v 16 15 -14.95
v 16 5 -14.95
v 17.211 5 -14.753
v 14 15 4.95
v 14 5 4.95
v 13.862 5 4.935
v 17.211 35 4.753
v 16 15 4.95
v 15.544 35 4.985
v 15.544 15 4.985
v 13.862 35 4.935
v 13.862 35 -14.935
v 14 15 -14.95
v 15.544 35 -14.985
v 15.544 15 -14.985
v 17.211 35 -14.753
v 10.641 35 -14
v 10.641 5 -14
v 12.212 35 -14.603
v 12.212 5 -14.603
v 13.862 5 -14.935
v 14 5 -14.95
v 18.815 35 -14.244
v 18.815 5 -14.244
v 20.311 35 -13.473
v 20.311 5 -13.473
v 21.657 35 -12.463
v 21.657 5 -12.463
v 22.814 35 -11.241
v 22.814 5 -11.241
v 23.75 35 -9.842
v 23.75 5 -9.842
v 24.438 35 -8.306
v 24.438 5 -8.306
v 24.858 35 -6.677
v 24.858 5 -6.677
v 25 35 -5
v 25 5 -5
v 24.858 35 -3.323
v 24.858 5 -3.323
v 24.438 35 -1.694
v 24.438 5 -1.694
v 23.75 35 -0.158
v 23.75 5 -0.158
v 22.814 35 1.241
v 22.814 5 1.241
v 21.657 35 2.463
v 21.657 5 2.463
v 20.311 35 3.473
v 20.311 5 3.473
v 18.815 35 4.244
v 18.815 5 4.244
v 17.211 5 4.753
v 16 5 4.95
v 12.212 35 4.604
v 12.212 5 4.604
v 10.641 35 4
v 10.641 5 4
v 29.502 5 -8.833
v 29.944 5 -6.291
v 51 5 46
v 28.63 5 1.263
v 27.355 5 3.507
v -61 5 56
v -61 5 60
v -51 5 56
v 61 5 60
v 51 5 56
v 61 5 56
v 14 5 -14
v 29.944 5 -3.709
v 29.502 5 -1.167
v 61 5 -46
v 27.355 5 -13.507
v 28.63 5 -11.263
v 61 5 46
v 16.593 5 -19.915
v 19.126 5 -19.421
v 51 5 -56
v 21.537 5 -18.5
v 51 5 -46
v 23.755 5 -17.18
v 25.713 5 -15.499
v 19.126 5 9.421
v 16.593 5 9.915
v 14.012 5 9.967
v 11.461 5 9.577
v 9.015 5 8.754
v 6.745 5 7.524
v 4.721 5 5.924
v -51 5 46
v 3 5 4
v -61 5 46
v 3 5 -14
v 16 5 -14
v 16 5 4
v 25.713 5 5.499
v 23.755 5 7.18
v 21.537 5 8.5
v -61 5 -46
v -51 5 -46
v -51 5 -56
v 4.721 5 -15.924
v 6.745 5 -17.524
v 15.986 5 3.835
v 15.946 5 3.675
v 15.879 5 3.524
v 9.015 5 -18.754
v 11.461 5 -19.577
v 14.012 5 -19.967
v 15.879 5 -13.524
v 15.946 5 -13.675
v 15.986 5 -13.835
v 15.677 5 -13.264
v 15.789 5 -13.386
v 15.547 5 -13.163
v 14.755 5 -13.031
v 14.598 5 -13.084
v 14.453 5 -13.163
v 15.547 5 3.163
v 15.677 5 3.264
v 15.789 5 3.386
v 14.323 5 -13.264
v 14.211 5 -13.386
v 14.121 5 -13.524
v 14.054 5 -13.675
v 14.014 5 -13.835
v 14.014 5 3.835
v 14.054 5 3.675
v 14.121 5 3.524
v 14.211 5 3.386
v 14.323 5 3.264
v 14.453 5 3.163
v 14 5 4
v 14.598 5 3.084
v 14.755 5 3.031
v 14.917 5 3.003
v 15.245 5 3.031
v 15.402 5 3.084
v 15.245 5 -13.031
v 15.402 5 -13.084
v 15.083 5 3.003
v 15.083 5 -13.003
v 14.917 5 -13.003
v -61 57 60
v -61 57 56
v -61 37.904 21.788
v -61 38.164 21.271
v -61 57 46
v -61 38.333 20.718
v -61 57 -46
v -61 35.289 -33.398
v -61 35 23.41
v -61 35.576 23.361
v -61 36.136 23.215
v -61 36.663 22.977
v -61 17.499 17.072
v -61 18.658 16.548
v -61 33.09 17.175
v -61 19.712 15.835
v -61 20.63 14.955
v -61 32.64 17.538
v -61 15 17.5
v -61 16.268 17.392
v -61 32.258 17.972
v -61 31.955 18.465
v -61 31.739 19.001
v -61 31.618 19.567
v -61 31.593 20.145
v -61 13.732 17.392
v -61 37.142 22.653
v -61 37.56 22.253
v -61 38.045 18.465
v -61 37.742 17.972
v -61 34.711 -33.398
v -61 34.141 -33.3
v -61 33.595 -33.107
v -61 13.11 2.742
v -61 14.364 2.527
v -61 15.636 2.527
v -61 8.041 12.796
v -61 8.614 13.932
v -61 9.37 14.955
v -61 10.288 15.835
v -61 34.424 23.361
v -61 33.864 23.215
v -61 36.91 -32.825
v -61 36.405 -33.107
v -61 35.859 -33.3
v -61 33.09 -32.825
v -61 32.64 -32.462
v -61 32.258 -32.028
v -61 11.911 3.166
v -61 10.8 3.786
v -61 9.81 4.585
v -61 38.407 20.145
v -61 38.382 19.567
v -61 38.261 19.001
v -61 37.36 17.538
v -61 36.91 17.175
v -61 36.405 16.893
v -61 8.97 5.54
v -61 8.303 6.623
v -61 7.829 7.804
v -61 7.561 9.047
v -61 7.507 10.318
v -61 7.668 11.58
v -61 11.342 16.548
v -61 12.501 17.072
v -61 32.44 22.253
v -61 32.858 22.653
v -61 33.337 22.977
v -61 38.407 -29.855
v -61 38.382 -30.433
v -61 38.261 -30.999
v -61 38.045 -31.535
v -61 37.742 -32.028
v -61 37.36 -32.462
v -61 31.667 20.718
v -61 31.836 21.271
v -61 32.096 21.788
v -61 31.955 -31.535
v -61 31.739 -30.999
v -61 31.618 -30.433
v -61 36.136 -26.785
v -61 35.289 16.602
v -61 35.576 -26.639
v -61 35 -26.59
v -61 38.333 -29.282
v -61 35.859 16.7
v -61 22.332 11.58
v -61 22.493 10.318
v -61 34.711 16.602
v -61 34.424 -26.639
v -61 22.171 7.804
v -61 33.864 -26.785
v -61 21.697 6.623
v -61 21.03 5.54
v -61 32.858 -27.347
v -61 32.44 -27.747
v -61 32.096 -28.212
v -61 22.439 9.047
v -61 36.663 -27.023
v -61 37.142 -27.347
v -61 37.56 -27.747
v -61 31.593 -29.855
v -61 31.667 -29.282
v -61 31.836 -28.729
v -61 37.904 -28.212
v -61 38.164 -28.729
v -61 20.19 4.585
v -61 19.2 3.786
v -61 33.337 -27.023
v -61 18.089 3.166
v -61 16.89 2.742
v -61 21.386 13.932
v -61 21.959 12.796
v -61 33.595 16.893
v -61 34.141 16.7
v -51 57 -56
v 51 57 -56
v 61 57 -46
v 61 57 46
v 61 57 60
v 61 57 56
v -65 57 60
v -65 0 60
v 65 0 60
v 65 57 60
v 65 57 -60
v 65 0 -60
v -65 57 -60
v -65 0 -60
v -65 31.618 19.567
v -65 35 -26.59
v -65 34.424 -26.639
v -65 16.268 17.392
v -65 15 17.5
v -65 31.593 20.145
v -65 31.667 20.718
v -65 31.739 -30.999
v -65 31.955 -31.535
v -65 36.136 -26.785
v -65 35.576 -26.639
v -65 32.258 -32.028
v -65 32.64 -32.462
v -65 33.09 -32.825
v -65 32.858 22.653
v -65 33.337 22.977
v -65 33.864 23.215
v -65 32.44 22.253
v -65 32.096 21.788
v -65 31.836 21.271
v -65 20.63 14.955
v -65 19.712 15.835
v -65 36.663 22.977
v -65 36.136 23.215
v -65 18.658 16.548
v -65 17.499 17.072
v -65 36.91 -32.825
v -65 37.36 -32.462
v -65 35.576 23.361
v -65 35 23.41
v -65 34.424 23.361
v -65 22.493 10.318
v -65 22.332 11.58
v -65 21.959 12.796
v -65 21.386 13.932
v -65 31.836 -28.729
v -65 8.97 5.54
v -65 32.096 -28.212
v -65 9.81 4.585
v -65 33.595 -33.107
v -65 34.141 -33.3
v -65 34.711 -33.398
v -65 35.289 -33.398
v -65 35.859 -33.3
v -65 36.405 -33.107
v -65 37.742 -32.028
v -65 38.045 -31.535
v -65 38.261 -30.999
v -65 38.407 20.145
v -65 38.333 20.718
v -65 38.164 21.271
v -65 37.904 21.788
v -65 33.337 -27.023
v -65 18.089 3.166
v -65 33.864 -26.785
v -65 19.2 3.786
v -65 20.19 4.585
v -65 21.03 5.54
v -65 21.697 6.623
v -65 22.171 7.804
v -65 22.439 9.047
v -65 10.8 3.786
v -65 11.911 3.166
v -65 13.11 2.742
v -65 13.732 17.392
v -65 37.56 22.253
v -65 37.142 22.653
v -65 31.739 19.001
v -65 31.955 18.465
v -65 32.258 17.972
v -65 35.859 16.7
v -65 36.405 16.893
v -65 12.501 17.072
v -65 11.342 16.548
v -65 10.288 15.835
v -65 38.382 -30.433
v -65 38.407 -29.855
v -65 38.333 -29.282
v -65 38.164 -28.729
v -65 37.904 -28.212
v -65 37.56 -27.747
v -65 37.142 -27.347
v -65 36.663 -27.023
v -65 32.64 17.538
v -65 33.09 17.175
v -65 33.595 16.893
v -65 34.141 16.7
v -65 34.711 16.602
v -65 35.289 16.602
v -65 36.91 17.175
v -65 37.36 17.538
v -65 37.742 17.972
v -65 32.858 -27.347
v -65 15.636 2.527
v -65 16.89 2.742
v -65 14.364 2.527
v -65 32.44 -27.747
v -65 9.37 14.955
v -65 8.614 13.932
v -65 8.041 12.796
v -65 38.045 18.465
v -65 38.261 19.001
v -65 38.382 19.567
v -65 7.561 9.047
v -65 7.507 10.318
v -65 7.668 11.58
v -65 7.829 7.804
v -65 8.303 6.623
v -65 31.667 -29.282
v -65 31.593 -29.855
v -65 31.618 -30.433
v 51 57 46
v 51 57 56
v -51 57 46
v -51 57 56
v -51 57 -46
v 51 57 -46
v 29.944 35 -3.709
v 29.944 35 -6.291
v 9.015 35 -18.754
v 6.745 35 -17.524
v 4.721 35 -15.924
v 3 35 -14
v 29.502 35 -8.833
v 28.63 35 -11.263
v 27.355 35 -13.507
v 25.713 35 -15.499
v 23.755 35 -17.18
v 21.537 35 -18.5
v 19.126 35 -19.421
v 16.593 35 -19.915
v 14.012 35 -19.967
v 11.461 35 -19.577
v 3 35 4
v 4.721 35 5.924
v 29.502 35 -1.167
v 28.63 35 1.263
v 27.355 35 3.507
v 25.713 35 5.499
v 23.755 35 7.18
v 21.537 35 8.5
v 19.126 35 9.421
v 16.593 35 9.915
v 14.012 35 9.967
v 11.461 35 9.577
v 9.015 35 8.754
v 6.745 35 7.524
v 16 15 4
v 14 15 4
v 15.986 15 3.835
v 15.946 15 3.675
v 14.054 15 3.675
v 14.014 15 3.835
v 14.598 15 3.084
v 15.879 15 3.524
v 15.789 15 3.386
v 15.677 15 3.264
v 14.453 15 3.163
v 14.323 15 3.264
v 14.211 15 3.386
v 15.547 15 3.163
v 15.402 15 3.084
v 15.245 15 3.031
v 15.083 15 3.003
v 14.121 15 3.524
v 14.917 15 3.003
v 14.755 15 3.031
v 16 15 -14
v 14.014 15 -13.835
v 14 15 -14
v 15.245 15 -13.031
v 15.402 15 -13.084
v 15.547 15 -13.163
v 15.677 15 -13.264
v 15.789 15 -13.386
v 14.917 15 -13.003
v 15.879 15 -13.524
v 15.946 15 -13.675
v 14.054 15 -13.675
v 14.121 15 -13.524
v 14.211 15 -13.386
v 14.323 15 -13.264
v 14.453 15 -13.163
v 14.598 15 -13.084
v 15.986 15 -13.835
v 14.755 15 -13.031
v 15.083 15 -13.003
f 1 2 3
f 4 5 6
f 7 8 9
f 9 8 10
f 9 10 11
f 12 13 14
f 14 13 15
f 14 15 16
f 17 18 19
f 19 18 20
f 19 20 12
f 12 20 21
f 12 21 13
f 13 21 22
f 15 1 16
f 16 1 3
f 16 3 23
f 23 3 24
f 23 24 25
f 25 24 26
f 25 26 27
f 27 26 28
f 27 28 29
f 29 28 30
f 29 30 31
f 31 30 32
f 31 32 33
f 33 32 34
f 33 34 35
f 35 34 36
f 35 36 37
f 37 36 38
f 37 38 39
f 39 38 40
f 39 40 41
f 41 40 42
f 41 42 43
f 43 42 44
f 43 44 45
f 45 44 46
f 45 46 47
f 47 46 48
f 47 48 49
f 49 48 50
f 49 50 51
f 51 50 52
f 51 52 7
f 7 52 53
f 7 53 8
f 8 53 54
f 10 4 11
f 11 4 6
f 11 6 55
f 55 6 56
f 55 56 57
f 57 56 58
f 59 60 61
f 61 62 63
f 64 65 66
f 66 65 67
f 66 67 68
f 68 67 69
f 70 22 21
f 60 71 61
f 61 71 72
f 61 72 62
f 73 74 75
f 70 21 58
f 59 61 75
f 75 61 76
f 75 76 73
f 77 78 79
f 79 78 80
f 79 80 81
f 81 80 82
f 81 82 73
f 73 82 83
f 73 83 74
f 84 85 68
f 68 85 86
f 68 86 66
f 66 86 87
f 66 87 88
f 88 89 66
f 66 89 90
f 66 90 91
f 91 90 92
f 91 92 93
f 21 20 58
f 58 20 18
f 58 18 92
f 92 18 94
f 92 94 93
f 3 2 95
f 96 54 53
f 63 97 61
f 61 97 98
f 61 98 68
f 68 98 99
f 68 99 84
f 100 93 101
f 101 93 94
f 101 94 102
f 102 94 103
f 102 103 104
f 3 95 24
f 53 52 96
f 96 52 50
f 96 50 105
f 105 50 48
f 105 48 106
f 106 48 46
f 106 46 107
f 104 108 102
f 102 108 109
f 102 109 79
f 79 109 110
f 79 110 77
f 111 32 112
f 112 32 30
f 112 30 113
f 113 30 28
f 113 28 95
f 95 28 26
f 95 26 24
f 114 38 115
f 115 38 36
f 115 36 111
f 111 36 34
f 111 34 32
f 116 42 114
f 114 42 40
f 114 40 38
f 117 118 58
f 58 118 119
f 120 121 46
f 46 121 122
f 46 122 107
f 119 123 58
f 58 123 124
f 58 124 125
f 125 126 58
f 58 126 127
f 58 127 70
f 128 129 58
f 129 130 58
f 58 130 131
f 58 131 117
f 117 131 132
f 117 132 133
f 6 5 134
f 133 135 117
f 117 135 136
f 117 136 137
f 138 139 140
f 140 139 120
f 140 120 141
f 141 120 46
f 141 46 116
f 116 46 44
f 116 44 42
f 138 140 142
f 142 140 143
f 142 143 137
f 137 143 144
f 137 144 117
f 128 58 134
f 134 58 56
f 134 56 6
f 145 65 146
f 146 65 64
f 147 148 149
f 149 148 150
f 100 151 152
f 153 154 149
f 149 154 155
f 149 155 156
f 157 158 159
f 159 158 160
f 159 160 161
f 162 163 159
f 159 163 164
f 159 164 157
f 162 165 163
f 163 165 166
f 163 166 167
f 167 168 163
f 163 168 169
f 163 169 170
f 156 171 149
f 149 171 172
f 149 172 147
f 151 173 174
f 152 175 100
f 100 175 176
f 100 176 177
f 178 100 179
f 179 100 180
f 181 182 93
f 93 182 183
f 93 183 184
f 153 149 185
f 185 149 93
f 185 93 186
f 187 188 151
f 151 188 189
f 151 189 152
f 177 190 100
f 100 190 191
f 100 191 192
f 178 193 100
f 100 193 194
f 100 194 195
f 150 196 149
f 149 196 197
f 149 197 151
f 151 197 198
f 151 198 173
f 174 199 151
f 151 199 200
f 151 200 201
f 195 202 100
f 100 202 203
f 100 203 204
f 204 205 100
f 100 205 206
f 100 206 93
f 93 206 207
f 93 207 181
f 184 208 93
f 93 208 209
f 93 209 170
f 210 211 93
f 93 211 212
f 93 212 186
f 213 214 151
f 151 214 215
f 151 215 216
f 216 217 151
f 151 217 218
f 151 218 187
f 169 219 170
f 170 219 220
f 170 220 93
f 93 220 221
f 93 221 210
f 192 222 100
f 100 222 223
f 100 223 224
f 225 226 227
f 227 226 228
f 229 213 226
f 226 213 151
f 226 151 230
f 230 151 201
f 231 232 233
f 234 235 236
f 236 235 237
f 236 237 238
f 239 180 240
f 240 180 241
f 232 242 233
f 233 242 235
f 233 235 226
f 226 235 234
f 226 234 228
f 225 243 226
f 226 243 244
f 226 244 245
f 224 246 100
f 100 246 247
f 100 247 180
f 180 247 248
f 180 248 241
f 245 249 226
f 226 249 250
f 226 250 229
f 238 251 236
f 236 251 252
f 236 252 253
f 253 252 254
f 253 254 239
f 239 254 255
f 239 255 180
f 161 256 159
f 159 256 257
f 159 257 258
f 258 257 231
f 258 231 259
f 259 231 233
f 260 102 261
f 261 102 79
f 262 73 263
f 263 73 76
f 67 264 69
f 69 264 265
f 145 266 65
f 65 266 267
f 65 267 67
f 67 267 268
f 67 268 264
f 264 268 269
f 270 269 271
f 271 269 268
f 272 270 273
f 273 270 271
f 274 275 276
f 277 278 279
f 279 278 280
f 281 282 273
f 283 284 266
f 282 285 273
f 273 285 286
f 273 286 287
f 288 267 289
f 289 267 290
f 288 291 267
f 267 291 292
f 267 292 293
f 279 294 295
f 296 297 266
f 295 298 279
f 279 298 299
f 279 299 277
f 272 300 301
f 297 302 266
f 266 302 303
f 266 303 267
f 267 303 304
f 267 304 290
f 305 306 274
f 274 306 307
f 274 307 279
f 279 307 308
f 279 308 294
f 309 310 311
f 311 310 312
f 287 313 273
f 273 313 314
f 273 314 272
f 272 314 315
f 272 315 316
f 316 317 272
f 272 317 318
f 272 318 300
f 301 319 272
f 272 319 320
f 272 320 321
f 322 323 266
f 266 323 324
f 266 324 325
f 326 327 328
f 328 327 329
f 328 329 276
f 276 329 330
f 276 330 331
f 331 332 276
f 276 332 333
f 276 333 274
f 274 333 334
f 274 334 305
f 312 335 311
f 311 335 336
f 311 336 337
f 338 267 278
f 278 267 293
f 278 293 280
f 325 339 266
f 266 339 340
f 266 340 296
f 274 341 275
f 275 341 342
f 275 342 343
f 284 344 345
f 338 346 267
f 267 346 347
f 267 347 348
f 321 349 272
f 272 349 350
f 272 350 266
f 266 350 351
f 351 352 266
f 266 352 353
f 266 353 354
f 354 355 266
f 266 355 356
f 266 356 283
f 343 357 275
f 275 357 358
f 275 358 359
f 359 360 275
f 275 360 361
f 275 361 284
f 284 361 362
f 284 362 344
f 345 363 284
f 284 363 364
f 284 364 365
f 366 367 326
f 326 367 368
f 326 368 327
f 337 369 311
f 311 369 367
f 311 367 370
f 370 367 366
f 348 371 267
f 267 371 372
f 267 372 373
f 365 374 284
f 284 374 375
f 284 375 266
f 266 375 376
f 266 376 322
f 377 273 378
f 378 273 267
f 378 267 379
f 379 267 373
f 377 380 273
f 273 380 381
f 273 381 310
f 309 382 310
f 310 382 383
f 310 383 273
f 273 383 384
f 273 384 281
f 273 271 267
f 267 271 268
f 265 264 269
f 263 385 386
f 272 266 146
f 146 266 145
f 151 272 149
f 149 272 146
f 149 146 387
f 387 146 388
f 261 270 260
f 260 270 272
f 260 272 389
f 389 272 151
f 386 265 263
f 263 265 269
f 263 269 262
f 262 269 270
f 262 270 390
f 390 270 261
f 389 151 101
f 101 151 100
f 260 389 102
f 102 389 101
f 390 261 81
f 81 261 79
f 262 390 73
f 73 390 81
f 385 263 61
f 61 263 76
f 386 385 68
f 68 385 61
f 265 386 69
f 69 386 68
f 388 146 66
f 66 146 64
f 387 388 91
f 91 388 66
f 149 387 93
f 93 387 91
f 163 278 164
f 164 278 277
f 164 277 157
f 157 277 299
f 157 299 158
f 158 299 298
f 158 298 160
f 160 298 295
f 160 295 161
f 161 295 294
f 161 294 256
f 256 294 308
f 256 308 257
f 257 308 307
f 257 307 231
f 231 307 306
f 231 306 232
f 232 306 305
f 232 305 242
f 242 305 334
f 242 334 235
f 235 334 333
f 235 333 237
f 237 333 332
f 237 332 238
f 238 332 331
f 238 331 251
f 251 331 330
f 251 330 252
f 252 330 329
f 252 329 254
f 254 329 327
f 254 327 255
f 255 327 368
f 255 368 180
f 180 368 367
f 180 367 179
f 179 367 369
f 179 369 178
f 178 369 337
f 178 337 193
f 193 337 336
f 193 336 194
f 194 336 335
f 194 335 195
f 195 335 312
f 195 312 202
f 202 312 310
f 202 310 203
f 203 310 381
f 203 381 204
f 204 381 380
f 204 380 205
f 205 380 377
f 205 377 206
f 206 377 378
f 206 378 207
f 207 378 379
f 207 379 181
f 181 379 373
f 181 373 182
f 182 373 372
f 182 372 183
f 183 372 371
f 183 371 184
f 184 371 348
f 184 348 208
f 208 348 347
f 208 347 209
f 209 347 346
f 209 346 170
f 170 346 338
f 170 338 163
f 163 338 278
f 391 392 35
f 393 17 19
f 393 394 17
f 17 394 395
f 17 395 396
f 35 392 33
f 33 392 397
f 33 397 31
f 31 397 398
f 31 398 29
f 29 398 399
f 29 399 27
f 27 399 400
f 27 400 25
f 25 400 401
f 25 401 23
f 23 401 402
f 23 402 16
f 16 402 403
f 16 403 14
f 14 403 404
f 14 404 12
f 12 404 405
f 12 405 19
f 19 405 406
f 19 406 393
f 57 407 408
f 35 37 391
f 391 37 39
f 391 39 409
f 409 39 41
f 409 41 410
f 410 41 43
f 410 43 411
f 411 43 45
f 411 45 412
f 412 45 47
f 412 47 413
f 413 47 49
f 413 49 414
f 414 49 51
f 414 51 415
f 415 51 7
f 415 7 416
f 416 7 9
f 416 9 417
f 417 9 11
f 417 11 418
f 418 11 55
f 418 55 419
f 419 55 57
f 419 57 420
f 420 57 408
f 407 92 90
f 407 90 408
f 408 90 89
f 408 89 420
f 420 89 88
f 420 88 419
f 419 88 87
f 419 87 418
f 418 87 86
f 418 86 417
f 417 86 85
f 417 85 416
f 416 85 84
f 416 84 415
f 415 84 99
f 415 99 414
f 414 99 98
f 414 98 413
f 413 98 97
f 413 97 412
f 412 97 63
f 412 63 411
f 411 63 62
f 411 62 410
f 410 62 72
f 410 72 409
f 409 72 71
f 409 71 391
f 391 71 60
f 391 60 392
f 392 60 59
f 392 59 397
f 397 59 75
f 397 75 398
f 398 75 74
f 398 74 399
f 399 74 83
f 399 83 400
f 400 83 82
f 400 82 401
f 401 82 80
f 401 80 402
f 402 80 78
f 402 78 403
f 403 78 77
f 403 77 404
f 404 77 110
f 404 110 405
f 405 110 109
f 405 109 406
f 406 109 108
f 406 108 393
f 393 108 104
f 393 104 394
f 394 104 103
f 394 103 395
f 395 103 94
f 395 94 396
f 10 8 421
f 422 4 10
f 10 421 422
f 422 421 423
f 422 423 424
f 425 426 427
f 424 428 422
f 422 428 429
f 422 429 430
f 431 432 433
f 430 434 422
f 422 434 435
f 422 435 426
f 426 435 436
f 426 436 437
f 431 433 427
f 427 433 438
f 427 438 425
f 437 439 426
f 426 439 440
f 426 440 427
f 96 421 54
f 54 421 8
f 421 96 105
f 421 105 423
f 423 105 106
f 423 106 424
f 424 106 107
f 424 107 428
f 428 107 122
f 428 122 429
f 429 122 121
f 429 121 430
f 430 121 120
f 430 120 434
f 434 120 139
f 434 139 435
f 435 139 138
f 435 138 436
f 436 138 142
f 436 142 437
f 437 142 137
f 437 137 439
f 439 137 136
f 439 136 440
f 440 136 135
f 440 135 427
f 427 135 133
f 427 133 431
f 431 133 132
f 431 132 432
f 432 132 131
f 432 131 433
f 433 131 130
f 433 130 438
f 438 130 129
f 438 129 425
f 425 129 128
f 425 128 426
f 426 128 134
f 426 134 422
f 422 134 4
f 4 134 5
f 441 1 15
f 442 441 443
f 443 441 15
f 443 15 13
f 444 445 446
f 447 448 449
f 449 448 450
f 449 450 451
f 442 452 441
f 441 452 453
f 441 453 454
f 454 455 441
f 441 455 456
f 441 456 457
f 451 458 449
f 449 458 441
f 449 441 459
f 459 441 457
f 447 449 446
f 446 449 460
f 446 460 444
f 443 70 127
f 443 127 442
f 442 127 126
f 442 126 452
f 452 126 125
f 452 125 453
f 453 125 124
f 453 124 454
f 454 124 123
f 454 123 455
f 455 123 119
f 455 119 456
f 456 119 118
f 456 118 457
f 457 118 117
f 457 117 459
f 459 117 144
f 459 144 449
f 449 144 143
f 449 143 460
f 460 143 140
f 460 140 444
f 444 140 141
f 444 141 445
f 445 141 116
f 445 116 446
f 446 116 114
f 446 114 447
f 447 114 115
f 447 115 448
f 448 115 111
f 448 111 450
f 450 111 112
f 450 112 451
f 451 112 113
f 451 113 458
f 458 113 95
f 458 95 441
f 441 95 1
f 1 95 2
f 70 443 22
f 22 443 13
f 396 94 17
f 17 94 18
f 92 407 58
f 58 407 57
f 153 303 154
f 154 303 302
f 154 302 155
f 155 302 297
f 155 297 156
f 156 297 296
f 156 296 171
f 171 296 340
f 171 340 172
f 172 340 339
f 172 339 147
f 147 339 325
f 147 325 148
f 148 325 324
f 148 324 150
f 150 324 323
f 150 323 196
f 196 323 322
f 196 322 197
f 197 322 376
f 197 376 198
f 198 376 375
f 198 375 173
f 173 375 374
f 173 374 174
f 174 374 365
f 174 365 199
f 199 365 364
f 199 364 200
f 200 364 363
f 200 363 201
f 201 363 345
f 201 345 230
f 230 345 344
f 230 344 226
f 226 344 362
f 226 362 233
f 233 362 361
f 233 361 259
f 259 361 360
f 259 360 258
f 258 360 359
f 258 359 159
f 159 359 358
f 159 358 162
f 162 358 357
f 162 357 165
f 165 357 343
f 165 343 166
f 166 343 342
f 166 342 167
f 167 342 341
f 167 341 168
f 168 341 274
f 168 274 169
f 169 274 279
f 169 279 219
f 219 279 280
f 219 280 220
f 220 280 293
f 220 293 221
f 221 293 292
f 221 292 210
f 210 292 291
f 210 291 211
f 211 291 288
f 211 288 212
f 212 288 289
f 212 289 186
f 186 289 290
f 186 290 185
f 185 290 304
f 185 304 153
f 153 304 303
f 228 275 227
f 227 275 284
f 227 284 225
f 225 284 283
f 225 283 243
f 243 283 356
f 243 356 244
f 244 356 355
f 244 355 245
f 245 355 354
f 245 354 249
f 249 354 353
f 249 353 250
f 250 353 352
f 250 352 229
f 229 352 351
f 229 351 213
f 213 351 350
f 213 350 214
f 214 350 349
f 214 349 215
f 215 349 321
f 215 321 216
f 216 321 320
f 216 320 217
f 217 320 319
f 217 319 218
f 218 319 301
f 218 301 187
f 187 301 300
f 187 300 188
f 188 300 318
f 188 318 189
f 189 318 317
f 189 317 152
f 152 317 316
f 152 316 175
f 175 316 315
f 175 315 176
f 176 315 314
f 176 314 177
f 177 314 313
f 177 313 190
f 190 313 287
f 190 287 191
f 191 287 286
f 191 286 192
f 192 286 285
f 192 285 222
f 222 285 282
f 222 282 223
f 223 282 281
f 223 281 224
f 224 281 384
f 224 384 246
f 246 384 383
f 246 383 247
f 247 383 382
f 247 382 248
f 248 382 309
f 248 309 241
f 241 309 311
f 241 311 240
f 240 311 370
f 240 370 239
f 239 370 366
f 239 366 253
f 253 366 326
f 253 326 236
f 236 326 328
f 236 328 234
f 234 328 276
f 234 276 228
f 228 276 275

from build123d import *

# Parameters (mm, degrees)
SKETCH4_W           = 130
SKETCH4_H           = 120
BOSS_EXTRUDE1_DEPTH = 5
BOSS_EXTRUDE2_DEPTH = 52
SKETCH6_W           = 10
SKETCH6_H           = 10
BOSS_EXTRUDE3_DEPTH = 52
SKETCH7_R           = 7.5
CUT_EXTRUDE1_DEPTH  = 5
SKETCH8_R           = 15
SKETCH8_R_2         = 10
BOSS_EXTRUDE4_DEPTH = 30
BOSS_EXTRUDE5_DEPTH = 10
SKETCH10_W          = 15
SKETCH10_H          = 18
CUT_EXTRUDE2_DEPTH  = 30
SKETCH11_R          = 3.41
CUT_EXTRUDE3_DEPTH  = 5


with BuildPart() as part:
    # Sketch4 → Boss-Extrude1 (new body)
    with BuildSketch(Plane(origin=(0, 0, 0), x_dir=(1, 0, 0), z_dir=(0, 1, 0))):
        Rectangle(SKETCH4_W, SKETCH4_H)
    extrude(amount=BOSS_EXTRUDE1_DEPTH)

    # Sketch5 → Boss-Extrude2 (add)
    with BuildSketch(Plane(origin=(0, 5, 0), x_dir=(1, 0, 0), z_dir=(0, 1, 0))):
        Polygon((-65, -60), (-65, 60), (65, 60), (65, -60), (61, -60), (61, 56), (-61, 56), (-61, -60), align=None)
    extrude(amount=BOSS_EXTRUDE2_DEPTH)

    # Sketch6 → Boss-Extrude3 (add)
    with BuildSketch(Plane(origin=(0, 5, 0), x_dir=(1, 0, 0), z_dir=(0, 1, 0))):
        with Locations((-56, 51)):
            Rectangle(SKETCH6_W, SKETCH6_H)
        with Locations((56, 51)):
            Rectangle(SKETCH6_W, SKETCH6_H)
        with Locations((56, -51)):
            Rectangle(SKETCH6_W, SKETCH6_H)
        with Locations((-56, -51)):
            Rectangle(SKETCH6_W, SKETCH6_H)
    extrude(amount=BOSS_EXTRUDE3_DEPTH)

    # Sketch7 → Cut-Extrude1 (cut)
    with BuildSketch(Plane.ZY.offset(65)):
        with Locations((10, 15)):
            Circle(SKETCH7_R)
    extrude(amount=-CUT_EXTRUDE1_DEPTH, mode=Mode.SUBTRACT)

    # Sketch8 → Boss-Extrude4 (add)
    with BuildSketch(Plane(origin=(0, 5, 0), x_dir=(1, 0, 0), z_dir=(0, 1, 0))):
        with Locations(Location((15, 5, 0), (0, 0, 90))):
            Circle(SKETCH8_R)
        with Locations(Location((15, 5, 0), (0, 0, 270))):
            Circle(SKETCH8_R_2, mode=Mode.SUBTRACT)
    extrude(amount=BOSS_EXTRUDE4_DEPTH)

    # Sketch9 → Boss-Extrude5 (add)
    with BuildSketch(Plane(origin=(0, 5, 0), x_dir=(1, 0, 0), z_dir=(0, 1, 0))):
        with BuildLine():
            Line((14, -4), (14, -5.590084182))
            Line((14, -5.590084182), (16, -5.590084182))
            Line((16, -5.590084182), (16, -4))
            ThreePointArc((16, -4), (15, -3), (14, -4))
        make_face()
        with BuildLine():
            Line((14, 14), (14, 15.761522781))
            Line((14, 15.761522781), (16, 15.761522781))
            Line((16, 15.761522781), (16, 14))
            ThreePointArc((16, 14), (15, 13), (14, 14))
        make_face()
    extrude(amount=BOSS_EXTRUDE5_DEPTH)

    # Sketch10 → Cut-Extrude2 (cut)
    with BuildSketch(Plane(origin=(0, 35, 0), x_dir=(1, 0, 0), z_dir=(0, 1, 0))):
        with Locations((5.5, 5)):
            Rectangle(SKETCH10_W, SKETCH10_H)
    extrude(amount=-CUT_EXTRUDE2_DEPTH, mode=Mode.SUBTRACT)

    # Sketch11 → Cut-Extrude3 (cut)
    with BuildSketch(Plane.ZY.offset(65)):
        with Locations((-30, 35)):
            Circle(SKETCH11_R)
        with Locations((20, 35)):
            Circle(SKETCH11_R)
    extrude(amount=-CUT_EXTRUDE3_DEPTH, mode=Mode.SUBTRACT)


solid = part.part
